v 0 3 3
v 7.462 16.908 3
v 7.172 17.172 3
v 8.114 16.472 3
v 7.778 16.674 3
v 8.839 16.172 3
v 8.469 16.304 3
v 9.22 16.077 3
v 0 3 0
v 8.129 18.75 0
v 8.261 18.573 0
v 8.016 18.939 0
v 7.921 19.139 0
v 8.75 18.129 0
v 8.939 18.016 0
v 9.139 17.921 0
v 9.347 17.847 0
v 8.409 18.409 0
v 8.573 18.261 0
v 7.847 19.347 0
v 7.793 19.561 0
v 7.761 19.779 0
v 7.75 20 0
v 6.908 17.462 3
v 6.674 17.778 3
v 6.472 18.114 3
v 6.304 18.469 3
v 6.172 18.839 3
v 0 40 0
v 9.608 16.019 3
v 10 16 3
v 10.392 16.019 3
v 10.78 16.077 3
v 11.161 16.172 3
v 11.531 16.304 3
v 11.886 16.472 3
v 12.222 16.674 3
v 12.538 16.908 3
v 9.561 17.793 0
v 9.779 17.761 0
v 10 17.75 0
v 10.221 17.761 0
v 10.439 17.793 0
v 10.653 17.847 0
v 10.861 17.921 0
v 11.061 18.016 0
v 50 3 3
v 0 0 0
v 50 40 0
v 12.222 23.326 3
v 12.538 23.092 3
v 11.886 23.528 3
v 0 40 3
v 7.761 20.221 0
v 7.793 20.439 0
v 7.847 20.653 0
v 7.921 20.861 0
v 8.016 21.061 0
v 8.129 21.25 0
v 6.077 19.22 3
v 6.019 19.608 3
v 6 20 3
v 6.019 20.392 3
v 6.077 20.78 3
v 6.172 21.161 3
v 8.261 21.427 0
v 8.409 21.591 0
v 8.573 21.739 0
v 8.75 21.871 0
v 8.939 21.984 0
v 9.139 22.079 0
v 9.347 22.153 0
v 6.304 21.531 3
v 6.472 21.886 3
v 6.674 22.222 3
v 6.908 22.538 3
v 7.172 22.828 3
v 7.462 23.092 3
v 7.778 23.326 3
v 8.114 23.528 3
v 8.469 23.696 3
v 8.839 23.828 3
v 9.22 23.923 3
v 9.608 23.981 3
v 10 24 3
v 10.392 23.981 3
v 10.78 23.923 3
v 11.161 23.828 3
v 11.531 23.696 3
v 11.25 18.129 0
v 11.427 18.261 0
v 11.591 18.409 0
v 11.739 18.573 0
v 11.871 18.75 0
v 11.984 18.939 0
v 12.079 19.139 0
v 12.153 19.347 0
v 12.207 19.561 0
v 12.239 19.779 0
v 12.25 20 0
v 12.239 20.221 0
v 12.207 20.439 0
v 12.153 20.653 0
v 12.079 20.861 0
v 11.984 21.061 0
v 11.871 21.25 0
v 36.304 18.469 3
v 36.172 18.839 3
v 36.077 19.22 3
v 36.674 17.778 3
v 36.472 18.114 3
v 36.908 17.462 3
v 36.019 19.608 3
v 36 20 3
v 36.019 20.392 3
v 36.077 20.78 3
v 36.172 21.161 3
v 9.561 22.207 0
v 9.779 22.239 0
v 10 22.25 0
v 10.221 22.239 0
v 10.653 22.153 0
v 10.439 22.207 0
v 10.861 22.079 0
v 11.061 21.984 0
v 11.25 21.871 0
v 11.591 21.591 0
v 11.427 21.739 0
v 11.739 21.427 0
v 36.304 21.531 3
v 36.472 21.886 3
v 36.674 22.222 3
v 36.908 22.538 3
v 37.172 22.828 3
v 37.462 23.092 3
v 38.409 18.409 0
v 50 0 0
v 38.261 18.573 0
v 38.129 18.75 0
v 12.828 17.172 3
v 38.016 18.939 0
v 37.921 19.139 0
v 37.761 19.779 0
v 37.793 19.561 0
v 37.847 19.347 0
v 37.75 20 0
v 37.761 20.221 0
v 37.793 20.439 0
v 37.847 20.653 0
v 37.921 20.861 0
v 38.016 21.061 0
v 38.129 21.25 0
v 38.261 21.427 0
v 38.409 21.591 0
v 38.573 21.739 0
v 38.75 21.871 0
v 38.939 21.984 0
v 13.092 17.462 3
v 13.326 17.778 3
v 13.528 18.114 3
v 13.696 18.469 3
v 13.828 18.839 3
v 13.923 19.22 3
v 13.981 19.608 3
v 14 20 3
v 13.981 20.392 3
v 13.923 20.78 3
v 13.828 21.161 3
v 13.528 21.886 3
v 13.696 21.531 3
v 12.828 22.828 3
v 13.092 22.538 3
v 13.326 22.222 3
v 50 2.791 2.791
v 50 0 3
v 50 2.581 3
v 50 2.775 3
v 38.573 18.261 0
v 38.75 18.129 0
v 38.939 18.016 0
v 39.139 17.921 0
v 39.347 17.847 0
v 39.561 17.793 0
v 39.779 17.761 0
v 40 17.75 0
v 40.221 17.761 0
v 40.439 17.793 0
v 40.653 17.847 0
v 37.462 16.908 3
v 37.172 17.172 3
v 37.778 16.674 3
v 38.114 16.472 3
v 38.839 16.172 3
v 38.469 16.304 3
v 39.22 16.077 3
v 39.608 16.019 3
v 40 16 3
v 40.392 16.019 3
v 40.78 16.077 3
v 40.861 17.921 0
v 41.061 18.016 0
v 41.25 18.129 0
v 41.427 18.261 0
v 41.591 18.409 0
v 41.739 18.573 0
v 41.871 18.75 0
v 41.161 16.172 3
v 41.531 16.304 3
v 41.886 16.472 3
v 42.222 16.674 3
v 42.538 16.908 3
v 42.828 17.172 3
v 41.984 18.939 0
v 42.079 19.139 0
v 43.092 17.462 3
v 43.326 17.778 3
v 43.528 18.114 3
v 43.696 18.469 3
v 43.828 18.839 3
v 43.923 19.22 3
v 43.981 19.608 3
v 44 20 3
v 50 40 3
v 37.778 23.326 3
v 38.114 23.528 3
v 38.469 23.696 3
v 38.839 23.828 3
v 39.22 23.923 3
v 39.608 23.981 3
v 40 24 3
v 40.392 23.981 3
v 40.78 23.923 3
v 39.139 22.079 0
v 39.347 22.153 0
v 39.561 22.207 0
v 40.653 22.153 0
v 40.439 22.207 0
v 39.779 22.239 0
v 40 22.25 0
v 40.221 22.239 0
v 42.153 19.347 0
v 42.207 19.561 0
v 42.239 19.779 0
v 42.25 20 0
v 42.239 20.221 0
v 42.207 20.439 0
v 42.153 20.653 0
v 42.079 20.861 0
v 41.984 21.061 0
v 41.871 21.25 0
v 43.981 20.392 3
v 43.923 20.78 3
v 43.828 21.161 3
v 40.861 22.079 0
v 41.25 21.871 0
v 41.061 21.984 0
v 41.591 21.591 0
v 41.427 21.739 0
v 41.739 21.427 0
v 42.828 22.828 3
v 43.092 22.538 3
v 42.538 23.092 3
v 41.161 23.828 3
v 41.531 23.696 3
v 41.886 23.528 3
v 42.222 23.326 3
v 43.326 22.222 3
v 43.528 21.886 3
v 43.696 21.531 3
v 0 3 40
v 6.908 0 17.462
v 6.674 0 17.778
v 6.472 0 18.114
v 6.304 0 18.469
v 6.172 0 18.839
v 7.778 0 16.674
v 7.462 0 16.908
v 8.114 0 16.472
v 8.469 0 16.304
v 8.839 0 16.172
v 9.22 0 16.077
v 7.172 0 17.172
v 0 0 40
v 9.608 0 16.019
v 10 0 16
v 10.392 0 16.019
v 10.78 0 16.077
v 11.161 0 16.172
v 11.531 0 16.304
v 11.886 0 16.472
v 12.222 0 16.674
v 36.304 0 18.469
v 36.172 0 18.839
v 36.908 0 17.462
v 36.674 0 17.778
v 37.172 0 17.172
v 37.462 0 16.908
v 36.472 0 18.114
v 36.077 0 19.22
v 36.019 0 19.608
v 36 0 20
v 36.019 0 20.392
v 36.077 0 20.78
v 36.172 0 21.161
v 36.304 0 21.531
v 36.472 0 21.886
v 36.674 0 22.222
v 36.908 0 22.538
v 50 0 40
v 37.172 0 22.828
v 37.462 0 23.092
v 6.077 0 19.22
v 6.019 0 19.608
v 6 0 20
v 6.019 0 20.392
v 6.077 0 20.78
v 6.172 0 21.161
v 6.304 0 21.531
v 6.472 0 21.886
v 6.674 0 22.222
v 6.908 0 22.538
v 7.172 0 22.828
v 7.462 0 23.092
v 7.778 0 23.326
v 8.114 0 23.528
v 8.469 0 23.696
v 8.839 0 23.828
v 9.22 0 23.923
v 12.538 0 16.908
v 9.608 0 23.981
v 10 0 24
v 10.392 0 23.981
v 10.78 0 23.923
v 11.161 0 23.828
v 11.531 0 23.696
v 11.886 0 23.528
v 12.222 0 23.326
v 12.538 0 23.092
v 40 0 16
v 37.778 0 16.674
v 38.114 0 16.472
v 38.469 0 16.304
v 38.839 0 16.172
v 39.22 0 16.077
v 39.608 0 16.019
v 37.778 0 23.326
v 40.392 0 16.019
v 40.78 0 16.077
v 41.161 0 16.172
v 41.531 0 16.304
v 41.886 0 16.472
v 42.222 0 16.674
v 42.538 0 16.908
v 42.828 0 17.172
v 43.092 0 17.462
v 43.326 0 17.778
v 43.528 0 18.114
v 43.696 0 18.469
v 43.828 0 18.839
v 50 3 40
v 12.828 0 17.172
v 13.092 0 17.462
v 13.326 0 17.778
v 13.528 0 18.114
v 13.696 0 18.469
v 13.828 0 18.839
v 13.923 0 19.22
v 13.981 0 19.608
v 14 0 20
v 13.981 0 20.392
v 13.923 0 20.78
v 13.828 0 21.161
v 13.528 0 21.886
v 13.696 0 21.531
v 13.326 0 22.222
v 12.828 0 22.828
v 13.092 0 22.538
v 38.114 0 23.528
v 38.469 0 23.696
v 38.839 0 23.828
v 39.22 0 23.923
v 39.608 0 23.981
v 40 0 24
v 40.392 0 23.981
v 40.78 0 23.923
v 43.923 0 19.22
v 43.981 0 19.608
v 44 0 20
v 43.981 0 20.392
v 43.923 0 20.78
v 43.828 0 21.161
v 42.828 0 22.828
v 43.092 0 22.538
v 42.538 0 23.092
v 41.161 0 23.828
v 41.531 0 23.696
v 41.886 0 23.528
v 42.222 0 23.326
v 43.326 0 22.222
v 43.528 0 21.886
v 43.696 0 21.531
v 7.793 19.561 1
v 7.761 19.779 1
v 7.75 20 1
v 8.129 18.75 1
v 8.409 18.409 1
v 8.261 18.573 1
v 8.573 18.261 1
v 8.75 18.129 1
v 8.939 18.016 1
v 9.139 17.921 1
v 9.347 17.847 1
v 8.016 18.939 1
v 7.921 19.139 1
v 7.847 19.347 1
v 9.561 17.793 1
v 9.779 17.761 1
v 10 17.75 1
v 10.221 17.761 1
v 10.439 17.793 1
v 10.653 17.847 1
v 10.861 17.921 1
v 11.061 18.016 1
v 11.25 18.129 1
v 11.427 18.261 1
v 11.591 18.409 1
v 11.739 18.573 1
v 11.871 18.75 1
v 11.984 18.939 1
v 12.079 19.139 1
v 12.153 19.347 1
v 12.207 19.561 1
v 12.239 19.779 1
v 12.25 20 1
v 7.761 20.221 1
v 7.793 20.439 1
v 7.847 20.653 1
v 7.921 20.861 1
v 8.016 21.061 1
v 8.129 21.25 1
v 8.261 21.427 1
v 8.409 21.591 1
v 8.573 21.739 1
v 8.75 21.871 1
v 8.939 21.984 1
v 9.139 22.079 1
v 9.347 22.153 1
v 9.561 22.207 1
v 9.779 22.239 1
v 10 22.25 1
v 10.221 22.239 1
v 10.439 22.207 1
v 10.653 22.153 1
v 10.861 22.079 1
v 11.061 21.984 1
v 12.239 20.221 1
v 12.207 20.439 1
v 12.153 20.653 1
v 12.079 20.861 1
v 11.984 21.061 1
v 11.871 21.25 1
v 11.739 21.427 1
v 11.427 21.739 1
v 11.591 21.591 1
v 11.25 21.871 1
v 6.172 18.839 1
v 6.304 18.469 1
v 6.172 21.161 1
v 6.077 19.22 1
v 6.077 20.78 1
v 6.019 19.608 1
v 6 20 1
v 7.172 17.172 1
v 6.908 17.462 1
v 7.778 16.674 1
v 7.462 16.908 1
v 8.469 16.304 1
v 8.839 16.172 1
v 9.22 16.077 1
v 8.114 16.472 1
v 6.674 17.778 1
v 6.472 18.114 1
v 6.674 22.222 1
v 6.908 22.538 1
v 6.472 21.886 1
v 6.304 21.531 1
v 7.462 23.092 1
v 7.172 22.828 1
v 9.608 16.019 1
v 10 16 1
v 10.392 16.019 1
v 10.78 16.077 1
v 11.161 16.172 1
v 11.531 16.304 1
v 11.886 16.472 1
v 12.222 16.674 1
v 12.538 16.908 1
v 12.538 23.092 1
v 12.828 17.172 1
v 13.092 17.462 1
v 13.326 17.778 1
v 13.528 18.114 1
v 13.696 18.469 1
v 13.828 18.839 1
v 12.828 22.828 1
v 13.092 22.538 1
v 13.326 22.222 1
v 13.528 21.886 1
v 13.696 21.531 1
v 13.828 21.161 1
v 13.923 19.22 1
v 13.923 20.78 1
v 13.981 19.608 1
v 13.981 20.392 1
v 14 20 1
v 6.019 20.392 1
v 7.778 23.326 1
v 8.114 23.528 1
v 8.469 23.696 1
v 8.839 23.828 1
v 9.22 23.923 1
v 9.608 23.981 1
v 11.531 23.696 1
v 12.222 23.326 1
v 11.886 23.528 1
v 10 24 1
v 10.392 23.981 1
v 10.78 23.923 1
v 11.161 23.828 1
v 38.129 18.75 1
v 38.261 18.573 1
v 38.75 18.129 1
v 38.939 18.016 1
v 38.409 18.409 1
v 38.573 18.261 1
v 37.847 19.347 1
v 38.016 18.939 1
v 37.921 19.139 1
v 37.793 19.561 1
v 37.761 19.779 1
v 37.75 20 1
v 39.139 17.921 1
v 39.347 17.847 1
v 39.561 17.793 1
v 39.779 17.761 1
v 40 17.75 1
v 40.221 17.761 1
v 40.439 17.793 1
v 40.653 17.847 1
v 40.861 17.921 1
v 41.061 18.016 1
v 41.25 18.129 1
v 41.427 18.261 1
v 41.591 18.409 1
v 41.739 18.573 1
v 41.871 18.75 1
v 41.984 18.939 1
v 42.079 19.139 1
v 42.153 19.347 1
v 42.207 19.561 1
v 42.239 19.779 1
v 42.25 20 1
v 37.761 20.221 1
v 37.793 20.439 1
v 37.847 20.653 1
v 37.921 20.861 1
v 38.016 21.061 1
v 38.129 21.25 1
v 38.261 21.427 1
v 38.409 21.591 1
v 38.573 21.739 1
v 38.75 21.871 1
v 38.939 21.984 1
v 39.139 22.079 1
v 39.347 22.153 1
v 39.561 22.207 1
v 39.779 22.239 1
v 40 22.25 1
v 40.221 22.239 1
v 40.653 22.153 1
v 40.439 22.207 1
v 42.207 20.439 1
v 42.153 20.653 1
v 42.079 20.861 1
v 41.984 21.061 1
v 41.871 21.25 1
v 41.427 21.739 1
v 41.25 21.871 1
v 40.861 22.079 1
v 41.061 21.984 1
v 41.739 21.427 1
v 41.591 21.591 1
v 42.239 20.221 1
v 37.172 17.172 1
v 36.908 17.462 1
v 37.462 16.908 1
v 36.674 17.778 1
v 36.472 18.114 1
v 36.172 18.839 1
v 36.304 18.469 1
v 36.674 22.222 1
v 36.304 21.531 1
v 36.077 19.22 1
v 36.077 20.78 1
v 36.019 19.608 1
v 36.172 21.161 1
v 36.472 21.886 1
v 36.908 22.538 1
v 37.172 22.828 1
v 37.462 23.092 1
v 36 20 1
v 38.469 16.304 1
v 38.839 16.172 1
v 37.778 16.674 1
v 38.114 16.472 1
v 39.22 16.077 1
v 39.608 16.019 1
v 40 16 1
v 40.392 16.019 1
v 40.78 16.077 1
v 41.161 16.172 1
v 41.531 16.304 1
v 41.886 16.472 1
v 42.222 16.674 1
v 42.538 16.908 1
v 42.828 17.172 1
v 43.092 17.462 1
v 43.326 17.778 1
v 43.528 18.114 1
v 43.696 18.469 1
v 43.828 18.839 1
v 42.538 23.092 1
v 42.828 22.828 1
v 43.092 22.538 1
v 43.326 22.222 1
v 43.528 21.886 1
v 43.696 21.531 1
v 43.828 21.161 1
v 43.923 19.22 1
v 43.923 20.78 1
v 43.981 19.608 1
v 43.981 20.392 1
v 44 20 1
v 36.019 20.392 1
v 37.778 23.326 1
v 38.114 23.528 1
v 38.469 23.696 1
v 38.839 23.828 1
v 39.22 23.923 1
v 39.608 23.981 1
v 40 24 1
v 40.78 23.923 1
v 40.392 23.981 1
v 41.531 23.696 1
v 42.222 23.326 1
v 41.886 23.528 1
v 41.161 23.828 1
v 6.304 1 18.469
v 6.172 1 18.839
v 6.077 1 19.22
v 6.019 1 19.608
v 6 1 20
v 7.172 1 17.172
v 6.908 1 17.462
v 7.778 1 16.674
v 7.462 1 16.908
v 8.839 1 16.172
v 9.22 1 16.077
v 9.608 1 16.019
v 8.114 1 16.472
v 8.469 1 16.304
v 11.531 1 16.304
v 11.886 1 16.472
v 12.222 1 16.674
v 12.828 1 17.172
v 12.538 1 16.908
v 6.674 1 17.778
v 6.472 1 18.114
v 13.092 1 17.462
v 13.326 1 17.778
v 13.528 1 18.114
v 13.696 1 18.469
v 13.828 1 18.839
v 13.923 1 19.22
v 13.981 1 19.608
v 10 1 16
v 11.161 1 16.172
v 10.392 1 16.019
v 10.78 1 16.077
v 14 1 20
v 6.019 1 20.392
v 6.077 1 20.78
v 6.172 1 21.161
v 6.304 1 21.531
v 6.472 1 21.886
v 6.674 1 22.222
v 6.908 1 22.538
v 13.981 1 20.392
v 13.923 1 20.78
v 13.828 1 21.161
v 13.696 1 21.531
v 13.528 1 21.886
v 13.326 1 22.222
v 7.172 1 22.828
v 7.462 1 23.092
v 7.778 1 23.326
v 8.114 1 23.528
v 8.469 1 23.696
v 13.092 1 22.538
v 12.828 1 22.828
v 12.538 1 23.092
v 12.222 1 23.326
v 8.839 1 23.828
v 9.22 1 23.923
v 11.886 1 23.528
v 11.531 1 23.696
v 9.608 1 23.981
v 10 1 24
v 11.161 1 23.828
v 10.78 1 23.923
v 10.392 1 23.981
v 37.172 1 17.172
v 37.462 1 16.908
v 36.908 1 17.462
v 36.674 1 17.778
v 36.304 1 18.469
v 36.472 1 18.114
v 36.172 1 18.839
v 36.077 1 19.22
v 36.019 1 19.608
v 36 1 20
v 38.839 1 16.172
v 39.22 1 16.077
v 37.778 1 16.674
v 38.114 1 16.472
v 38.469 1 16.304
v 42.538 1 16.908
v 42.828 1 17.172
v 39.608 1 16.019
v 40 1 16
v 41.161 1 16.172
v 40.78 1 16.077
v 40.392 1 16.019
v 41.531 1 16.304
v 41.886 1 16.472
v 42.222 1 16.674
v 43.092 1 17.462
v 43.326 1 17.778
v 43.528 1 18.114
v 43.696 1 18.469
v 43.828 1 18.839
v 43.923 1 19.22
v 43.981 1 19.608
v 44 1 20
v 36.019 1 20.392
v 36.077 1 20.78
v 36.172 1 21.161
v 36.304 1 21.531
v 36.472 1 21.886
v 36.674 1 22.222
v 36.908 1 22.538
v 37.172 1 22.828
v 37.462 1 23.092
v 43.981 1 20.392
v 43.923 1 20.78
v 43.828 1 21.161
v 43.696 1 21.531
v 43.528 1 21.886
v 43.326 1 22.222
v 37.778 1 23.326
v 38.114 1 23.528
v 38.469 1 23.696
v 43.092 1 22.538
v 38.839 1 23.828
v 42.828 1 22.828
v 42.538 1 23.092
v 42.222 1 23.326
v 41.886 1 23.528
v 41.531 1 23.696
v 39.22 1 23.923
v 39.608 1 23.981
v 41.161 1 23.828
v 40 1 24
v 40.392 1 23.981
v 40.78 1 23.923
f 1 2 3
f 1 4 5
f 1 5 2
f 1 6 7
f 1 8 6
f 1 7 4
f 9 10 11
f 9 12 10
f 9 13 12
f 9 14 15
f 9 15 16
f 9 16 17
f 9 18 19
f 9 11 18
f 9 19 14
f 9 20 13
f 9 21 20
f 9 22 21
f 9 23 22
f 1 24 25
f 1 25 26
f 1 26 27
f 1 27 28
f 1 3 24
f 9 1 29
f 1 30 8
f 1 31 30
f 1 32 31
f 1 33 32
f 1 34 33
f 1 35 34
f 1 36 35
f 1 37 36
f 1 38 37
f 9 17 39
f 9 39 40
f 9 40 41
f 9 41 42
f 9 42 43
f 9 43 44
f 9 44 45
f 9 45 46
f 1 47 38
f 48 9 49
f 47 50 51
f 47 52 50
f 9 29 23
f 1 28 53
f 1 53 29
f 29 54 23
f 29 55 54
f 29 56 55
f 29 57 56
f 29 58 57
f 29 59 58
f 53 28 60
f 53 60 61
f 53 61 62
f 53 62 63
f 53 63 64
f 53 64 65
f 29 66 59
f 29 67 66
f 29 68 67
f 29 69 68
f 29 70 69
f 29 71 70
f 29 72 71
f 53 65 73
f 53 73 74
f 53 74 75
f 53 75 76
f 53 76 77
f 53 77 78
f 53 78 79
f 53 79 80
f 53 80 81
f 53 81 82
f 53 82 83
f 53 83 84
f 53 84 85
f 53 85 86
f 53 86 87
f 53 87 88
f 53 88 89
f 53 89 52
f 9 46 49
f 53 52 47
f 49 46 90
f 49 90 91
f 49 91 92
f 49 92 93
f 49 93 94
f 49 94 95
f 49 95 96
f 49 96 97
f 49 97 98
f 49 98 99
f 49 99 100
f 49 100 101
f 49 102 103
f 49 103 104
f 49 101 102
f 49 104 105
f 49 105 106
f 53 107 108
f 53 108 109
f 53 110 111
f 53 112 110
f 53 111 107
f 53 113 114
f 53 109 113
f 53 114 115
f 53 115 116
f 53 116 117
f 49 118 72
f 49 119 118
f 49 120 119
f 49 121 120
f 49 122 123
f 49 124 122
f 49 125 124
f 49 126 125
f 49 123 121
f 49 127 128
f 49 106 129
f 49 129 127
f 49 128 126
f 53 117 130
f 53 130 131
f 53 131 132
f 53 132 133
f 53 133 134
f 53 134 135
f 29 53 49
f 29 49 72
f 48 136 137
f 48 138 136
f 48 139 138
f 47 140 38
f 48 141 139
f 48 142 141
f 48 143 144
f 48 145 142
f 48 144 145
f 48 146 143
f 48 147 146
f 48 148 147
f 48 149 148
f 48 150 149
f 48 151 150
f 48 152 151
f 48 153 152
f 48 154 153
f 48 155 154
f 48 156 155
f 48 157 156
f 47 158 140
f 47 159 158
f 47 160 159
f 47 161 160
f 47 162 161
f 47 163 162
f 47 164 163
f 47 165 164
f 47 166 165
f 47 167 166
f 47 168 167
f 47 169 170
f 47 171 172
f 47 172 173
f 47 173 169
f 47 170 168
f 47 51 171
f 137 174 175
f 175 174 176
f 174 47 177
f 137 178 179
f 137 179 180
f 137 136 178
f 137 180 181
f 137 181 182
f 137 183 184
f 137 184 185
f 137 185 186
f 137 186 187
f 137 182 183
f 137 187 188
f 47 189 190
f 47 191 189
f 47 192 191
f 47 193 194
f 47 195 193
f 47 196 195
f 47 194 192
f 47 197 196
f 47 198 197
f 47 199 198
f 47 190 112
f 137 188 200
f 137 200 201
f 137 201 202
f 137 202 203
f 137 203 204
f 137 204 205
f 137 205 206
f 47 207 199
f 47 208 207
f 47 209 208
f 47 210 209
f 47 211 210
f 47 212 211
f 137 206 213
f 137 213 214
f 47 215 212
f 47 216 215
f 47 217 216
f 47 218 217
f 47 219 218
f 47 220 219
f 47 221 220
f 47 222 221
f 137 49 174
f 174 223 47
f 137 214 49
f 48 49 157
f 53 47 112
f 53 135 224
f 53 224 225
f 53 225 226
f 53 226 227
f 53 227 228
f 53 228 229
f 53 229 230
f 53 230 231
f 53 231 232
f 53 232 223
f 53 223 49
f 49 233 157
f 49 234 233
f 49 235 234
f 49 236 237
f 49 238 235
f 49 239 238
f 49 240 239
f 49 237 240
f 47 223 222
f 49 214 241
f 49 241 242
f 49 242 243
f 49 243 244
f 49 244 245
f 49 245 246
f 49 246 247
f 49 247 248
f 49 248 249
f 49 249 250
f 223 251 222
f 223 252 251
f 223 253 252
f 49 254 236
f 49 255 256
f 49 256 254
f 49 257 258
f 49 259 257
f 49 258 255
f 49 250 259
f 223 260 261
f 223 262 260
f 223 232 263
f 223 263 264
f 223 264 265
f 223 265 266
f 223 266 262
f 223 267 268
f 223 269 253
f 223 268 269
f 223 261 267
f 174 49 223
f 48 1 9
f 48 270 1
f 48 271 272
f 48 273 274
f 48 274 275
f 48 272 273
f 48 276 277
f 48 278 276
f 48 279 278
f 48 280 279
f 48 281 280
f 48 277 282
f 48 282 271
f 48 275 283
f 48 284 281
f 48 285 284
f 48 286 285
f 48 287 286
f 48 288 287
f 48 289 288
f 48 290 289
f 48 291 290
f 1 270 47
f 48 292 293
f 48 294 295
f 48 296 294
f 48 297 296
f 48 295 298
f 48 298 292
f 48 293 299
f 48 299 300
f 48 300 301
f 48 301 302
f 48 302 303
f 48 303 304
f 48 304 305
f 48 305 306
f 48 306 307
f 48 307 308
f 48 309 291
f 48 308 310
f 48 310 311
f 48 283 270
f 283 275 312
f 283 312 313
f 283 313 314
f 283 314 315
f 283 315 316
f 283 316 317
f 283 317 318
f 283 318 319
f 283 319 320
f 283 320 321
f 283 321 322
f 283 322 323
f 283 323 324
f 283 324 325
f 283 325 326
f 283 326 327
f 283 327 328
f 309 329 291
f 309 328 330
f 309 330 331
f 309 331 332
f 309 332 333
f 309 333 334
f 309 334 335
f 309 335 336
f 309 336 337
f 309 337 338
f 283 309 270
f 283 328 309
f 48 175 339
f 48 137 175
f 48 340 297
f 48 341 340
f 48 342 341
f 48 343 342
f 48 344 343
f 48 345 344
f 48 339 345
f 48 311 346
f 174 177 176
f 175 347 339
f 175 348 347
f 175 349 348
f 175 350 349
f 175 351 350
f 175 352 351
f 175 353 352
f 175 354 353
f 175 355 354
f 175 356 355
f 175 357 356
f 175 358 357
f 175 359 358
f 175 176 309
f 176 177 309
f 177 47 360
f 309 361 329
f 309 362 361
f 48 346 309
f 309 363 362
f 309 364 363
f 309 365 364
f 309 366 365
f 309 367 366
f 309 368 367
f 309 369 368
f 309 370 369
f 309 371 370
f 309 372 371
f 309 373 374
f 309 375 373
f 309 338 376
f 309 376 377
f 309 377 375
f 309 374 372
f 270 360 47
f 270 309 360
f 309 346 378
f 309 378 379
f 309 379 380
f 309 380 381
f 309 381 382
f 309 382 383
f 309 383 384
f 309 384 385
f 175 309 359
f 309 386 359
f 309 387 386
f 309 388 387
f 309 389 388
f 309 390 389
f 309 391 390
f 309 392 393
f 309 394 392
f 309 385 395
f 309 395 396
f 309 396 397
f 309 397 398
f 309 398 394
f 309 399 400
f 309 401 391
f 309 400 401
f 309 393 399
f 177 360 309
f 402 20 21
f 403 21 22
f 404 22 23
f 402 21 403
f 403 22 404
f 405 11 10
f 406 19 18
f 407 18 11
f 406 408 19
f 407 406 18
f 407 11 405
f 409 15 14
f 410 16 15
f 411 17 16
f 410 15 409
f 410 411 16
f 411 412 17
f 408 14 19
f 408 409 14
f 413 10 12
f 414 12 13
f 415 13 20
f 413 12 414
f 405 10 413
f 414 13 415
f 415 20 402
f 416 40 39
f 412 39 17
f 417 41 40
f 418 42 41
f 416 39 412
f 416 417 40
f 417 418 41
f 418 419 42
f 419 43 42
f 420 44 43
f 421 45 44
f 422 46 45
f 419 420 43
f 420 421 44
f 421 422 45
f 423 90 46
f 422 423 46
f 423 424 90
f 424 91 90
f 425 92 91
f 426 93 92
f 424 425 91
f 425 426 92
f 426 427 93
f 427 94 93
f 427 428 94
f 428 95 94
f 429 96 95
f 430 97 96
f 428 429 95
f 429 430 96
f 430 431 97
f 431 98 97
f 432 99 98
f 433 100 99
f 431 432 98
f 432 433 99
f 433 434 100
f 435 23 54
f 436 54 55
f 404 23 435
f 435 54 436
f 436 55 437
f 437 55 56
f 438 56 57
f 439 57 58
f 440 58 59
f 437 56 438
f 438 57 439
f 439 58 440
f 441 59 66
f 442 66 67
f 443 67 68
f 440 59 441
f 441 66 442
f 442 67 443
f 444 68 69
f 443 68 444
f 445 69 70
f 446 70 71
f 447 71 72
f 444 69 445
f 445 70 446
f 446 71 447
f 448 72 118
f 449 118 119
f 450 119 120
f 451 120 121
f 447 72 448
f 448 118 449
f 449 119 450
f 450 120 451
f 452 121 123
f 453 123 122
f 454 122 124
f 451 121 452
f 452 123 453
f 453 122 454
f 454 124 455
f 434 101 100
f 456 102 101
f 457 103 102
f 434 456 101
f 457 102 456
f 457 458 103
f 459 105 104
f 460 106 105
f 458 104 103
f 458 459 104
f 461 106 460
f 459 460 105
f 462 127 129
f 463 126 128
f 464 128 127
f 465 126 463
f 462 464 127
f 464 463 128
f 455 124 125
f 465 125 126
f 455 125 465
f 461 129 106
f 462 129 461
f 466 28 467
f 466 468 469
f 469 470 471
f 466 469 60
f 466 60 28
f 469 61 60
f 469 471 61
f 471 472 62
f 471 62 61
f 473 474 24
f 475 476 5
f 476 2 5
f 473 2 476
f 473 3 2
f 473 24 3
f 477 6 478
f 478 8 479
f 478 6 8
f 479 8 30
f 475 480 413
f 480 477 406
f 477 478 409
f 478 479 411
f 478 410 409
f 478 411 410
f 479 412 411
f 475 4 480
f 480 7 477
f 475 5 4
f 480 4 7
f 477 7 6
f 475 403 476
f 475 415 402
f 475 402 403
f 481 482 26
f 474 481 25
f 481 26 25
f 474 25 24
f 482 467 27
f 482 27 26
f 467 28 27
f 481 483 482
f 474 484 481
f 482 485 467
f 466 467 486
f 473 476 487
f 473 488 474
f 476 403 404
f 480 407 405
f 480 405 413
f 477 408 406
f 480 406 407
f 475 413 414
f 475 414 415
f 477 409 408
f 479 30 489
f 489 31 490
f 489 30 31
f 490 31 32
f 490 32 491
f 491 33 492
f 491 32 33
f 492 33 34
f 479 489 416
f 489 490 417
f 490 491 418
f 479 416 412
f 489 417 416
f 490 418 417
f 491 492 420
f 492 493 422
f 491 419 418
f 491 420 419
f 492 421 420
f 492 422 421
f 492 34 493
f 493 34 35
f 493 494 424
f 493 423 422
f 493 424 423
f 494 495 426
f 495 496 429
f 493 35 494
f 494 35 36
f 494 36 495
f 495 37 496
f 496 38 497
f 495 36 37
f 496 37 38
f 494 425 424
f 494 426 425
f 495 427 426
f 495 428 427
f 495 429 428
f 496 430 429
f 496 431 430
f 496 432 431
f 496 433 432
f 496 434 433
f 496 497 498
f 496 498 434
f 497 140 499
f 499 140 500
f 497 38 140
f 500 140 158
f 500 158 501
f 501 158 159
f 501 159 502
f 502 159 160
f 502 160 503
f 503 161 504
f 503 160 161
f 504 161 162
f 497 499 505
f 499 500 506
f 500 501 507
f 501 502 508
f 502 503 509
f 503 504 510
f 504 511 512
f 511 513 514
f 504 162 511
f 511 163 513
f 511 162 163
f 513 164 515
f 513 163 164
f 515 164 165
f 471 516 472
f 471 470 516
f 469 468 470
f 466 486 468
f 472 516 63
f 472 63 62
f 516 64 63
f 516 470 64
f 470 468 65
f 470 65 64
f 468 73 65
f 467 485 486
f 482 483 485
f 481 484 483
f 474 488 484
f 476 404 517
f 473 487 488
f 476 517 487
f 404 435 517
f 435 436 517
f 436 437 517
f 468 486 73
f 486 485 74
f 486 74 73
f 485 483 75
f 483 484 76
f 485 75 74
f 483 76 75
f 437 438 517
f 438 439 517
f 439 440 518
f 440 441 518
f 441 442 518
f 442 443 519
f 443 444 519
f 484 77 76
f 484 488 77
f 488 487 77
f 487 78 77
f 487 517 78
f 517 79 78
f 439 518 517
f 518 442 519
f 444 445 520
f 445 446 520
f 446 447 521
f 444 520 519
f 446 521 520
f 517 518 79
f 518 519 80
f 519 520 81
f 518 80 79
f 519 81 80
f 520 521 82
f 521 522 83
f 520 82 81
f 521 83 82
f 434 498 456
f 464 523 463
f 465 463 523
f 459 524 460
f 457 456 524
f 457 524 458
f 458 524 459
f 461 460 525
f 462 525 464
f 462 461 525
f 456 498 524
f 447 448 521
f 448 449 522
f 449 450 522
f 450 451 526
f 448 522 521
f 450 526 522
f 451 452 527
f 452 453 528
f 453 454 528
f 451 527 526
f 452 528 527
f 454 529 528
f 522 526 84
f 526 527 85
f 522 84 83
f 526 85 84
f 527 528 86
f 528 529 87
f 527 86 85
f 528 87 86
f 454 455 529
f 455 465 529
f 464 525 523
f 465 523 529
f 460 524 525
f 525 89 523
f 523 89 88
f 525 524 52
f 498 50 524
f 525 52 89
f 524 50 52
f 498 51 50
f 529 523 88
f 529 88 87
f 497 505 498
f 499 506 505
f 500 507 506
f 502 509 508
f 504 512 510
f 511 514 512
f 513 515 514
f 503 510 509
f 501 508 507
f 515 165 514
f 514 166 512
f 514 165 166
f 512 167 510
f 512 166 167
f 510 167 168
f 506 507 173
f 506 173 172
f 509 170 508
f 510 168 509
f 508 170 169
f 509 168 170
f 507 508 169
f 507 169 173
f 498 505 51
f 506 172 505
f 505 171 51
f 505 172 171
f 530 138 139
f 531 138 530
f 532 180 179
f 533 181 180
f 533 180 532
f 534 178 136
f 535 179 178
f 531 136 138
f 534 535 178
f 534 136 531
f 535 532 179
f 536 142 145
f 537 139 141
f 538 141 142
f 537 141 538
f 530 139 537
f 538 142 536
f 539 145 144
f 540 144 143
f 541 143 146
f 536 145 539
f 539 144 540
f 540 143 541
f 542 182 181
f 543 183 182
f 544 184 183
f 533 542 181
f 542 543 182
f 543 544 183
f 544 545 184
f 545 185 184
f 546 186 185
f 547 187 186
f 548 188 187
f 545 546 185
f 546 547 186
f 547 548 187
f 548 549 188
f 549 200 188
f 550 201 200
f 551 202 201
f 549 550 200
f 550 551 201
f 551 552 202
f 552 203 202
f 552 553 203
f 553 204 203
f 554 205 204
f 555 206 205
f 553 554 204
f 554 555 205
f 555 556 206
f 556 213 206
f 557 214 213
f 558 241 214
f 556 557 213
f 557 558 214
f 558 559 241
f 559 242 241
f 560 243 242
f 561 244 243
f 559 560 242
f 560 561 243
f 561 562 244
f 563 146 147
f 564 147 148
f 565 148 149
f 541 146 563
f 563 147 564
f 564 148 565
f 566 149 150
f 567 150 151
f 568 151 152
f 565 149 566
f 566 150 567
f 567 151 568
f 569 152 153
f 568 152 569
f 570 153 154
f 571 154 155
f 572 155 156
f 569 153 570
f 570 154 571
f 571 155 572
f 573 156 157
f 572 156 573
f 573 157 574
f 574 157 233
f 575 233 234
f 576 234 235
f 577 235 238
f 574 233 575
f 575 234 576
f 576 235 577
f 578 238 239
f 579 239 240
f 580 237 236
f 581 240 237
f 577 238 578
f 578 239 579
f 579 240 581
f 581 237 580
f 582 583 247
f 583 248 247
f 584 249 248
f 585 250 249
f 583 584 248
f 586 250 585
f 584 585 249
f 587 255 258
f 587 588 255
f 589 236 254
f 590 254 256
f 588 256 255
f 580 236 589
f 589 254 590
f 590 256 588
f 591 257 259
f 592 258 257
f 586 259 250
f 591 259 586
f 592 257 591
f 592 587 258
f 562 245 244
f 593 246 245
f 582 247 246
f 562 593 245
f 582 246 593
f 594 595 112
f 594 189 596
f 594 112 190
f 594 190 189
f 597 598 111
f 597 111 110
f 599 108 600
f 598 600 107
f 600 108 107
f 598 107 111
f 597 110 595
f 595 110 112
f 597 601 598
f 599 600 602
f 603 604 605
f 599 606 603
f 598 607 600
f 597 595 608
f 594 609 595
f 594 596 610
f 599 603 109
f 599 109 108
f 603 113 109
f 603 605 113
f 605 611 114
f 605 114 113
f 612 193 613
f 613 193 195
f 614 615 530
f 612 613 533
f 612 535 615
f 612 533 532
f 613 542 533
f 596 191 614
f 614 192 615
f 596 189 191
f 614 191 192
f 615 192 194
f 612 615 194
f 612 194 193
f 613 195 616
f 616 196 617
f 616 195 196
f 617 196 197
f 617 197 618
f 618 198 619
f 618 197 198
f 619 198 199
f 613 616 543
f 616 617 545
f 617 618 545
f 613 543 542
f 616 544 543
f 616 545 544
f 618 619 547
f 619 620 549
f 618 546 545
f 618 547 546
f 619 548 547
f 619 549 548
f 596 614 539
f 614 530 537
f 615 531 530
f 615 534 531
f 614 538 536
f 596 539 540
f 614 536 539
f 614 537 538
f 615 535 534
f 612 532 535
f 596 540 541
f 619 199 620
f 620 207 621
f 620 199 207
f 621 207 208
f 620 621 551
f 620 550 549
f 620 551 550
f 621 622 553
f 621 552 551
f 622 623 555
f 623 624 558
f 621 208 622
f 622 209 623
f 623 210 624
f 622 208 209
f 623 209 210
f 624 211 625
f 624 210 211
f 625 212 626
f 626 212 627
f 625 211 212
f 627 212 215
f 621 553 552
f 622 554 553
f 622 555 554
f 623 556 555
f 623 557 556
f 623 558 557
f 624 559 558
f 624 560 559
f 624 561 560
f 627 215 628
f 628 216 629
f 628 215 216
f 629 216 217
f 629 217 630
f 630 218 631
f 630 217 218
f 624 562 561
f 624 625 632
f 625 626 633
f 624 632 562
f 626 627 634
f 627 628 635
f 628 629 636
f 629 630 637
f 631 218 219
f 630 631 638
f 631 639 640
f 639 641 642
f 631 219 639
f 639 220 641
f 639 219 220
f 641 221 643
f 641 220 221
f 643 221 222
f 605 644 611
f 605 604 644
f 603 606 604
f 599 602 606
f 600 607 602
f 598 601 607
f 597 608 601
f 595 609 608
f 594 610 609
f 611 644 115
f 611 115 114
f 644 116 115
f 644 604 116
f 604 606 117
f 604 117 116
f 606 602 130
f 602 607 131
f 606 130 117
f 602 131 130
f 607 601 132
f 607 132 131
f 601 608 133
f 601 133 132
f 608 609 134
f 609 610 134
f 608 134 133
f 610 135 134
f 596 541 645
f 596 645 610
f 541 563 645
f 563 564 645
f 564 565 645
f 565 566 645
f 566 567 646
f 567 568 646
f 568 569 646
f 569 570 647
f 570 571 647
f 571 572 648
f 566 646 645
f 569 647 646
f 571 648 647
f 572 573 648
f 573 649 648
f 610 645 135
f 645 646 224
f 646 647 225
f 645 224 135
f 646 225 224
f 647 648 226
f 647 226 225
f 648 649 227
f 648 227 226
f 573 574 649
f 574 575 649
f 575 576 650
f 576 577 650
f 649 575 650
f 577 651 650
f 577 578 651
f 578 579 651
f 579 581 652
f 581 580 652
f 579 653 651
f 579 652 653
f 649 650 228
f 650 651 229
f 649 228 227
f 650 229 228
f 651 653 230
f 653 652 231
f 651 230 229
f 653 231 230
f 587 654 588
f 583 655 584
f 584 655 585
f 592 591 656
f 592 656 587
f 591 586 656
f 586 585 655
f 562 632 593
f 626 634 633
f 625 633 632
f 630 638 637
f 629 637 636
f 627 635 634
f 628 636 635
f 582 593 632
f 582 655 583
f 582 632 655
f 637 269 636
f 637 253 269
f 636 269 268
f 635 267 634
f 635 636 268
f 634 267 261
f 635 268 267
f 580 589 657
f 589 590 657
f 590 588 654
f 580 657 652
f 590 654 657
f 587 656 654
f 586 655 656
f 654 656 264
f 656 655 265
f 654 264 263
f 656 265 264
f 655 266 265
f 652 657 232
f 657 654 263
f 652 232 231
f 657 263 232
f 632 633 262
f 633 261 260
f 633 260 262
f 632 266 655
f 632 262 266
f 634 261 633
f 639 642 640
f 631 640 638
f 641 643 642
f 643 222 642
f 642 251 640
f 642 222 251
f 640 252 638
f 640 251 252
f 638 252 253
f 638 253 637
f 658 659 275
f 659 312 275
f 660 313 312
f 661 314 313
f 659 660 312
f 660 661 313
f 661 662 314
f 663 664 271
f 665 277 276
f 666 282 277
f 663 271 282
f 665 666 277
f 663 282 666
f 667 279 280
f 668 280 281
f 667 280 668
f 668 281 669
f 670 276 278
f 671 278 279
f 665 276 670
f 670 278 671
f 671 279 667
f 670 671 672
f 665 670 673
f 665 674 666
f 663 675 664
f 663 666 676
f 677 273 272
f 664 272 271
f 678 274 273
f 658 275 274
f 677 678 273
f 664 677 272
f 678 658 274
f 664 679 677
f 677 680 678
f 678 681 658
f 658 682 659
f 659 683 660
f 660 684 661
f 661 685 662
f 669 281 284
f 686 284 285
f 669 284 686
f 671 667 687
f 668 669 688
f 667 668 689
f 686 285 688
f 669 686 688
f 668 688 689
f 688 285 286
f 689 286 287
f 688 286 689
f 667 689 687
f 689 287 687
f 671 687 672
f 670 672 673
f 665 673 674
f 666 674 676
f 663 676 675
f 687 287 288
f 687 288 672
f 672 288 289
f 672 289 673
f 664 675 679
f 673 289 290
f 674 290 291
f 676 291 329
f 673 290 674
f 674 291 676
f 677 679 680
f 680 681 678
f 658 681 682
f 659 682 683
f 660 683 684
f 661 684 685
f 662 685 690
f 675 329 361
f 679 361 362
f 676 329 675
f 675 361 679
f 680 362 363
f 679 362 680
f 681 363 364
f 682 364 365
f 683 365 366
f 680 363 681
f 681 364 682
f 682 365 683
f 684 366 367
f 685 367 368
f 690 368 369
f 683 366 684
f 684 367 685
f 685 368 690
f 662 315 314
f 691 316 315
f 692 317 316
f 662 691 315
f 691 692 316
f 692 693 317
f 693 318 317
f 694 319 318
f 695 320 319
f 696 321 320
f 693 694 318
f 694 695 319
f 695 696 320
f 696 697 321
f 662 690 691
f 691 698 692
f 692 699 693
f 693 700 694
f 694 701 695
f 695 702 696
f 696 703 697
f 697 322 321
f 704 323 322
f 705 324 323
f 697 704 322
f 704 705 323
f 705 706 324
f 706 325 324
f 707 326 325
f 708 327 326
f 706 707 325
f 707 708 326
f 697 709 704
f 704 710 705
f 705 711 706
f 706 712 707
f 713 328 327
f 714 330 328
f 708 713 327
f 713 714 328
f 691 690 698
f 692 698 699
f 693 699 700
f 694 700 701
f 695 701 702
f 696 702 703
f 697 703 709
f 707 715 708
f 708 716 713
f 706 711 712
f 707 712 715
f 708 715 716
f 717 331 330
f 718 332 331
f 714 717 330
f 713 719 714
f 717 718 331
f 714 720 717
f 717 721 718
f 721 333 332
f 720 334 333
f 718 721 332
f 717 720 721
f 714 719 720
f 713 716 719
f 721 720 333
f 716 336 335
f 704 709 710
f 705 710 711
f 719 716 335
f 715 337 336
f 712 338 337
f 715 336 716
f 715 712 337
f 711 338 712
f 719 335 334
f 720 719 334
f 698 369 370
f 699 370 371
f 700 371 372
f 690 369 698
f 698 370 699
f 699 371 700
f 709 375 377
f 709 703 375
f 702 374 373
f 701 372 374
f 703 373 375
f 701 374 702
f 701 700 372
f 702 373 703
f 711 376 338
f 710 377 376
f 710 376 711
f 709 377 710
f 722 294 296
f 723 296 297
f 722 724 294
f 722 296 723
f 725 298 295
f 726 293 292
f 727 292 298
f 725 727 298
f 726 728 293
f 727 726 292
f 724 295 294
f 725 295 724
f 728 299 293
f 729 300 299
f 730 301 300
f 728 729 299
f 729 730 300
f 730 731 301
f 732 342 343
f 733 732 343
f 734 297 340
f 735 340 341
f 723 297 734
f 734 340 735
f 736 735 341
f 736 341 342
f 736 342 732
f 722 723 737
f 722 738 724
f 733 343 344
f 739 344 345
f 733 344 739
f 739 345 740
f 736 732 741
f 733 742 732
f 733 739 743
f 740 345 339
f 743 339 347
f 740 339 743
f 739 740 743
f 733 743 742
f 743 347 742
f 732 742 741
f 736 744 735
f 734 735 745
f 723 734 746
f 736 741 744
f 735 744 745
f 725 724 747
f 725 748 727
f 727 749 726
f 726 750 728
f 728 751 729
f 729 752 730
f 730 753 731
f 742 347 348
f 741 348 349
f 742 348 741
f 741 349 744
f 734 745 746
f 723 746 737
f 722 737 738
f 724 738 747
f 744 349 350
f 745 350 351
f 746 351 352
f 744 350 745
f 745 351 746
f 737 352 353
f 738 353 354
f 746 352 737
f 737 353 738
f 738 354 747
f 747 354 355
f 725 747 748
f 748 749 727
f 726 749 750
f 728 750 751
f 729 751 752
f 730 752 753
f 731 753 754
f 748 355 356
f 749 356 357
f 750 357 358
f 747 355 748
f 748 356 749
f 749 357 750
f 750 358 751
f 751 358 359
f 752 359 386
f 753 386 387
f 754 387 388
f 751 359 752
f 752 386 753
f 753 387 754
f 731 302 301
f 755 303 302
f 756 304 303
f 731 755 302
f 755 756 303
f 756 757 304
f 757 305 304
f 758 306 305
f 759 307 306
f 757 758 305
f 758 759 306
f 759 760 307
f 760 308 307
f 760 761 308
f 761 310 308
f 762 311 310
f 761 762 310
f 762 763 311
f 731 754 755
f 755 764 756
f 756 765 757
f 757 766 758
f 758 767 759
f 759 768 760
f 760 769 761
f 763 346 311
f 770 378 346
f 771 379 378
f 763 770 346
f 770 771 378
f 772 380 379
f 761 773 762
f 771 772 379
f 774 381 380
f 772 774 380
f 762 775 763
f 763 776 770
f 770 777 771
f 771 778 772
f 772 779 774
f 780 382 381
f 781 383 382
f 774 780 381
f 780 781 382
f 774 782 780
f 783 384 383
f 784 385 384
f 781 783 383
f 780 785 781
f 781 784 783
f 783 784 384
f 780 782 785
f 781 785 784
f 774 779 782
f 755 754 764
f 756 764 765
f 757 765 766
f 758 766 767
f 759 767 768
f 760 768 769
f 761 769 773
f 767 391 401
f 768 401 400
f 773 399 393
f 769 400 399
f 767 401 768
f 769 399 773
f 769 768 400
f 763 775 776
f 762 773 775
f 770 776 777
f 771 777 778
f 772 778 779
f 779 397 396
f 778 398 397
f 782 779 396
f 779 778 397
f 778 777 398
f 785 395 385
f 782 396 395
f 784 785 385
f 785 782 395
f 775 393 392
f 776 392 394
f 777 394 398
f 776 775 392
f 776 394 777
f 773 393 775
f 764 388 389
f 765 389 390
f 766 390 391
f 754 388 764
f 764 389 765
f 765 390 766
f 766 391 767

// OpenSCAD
// openscad
$fn = 64;

// Parameters
w = 50;             // width (X)
len = 40;           // flange length (Y for horizontal, Z for vertical)
t = 3;              // thickness
hole_d = 4.5;       // through hole diameter for M4
cs_d = 8;           // countersink seat diameter
cs_depth = 2;       // countersink depth
eps = 0.1;          // small margin for boolean robustness

// Hole X positions: 10mm from each lateral edge (symmetric)
hole_x = [10, w - 10];

// Centers along the face midline
h_y = len/2;    // horizontal flange holes: Y coordinate (centerline of horizontal face)
v_z = len/2;    // vertical flange holes: Z coordinate (centerline of vertical face)

module bracket() {
    // Horizontal flange: X:0..w, Y:0..len, Z:0..t
    translate([0,0,0]) cube([w, len, t], center=false);
    // Vertical flange: X:0..w, Y:0..t, Z:0..len
    translate([0,0,0]) cube([w, t, len], center=false);
}

module subtract_holes() {
    // Horizontal flange holes (axis Z), countersink on outer side (+Z)
    for (x = hole_x) {
        // through hole: a little oversize in length to ensure clean subtraction
        translate([x, h_y, -eps]) cylinder(h=t + 2*eps, r=hole_d/2, center=false);
        // countersink pocket from outer face (+Z), depth cs_depth, flush at Z = t
        translate([x, h_y, t - cs_depth]) cylinder(h=cs_depth, r=cs_d/2, center=false);
    }

    // Vertical flange holes (axis Y), countersink on outer side (+Y)
    for (x = hole_x) {
        // through hole along Y (rotate cylinder), oversize length for robust subtraction
        translate([x, -eps, v_z]) rotate([90,0,0]) cylinder(h=t + 2*eps, r=hole_d/2, center=false);
        // countersink pocket from outer face (+Y), depth cs_depth, flush at Y = t
        translate([x, t - cs_depth, v_z]) rotate([90,0,0]) cylinder(h=cs_depth, r=cs_d/2, center=false);
    }
}

// Final part: union of flanges minus holes/countersinks
difference() {
    bracket();
    subtract_holes();
}
